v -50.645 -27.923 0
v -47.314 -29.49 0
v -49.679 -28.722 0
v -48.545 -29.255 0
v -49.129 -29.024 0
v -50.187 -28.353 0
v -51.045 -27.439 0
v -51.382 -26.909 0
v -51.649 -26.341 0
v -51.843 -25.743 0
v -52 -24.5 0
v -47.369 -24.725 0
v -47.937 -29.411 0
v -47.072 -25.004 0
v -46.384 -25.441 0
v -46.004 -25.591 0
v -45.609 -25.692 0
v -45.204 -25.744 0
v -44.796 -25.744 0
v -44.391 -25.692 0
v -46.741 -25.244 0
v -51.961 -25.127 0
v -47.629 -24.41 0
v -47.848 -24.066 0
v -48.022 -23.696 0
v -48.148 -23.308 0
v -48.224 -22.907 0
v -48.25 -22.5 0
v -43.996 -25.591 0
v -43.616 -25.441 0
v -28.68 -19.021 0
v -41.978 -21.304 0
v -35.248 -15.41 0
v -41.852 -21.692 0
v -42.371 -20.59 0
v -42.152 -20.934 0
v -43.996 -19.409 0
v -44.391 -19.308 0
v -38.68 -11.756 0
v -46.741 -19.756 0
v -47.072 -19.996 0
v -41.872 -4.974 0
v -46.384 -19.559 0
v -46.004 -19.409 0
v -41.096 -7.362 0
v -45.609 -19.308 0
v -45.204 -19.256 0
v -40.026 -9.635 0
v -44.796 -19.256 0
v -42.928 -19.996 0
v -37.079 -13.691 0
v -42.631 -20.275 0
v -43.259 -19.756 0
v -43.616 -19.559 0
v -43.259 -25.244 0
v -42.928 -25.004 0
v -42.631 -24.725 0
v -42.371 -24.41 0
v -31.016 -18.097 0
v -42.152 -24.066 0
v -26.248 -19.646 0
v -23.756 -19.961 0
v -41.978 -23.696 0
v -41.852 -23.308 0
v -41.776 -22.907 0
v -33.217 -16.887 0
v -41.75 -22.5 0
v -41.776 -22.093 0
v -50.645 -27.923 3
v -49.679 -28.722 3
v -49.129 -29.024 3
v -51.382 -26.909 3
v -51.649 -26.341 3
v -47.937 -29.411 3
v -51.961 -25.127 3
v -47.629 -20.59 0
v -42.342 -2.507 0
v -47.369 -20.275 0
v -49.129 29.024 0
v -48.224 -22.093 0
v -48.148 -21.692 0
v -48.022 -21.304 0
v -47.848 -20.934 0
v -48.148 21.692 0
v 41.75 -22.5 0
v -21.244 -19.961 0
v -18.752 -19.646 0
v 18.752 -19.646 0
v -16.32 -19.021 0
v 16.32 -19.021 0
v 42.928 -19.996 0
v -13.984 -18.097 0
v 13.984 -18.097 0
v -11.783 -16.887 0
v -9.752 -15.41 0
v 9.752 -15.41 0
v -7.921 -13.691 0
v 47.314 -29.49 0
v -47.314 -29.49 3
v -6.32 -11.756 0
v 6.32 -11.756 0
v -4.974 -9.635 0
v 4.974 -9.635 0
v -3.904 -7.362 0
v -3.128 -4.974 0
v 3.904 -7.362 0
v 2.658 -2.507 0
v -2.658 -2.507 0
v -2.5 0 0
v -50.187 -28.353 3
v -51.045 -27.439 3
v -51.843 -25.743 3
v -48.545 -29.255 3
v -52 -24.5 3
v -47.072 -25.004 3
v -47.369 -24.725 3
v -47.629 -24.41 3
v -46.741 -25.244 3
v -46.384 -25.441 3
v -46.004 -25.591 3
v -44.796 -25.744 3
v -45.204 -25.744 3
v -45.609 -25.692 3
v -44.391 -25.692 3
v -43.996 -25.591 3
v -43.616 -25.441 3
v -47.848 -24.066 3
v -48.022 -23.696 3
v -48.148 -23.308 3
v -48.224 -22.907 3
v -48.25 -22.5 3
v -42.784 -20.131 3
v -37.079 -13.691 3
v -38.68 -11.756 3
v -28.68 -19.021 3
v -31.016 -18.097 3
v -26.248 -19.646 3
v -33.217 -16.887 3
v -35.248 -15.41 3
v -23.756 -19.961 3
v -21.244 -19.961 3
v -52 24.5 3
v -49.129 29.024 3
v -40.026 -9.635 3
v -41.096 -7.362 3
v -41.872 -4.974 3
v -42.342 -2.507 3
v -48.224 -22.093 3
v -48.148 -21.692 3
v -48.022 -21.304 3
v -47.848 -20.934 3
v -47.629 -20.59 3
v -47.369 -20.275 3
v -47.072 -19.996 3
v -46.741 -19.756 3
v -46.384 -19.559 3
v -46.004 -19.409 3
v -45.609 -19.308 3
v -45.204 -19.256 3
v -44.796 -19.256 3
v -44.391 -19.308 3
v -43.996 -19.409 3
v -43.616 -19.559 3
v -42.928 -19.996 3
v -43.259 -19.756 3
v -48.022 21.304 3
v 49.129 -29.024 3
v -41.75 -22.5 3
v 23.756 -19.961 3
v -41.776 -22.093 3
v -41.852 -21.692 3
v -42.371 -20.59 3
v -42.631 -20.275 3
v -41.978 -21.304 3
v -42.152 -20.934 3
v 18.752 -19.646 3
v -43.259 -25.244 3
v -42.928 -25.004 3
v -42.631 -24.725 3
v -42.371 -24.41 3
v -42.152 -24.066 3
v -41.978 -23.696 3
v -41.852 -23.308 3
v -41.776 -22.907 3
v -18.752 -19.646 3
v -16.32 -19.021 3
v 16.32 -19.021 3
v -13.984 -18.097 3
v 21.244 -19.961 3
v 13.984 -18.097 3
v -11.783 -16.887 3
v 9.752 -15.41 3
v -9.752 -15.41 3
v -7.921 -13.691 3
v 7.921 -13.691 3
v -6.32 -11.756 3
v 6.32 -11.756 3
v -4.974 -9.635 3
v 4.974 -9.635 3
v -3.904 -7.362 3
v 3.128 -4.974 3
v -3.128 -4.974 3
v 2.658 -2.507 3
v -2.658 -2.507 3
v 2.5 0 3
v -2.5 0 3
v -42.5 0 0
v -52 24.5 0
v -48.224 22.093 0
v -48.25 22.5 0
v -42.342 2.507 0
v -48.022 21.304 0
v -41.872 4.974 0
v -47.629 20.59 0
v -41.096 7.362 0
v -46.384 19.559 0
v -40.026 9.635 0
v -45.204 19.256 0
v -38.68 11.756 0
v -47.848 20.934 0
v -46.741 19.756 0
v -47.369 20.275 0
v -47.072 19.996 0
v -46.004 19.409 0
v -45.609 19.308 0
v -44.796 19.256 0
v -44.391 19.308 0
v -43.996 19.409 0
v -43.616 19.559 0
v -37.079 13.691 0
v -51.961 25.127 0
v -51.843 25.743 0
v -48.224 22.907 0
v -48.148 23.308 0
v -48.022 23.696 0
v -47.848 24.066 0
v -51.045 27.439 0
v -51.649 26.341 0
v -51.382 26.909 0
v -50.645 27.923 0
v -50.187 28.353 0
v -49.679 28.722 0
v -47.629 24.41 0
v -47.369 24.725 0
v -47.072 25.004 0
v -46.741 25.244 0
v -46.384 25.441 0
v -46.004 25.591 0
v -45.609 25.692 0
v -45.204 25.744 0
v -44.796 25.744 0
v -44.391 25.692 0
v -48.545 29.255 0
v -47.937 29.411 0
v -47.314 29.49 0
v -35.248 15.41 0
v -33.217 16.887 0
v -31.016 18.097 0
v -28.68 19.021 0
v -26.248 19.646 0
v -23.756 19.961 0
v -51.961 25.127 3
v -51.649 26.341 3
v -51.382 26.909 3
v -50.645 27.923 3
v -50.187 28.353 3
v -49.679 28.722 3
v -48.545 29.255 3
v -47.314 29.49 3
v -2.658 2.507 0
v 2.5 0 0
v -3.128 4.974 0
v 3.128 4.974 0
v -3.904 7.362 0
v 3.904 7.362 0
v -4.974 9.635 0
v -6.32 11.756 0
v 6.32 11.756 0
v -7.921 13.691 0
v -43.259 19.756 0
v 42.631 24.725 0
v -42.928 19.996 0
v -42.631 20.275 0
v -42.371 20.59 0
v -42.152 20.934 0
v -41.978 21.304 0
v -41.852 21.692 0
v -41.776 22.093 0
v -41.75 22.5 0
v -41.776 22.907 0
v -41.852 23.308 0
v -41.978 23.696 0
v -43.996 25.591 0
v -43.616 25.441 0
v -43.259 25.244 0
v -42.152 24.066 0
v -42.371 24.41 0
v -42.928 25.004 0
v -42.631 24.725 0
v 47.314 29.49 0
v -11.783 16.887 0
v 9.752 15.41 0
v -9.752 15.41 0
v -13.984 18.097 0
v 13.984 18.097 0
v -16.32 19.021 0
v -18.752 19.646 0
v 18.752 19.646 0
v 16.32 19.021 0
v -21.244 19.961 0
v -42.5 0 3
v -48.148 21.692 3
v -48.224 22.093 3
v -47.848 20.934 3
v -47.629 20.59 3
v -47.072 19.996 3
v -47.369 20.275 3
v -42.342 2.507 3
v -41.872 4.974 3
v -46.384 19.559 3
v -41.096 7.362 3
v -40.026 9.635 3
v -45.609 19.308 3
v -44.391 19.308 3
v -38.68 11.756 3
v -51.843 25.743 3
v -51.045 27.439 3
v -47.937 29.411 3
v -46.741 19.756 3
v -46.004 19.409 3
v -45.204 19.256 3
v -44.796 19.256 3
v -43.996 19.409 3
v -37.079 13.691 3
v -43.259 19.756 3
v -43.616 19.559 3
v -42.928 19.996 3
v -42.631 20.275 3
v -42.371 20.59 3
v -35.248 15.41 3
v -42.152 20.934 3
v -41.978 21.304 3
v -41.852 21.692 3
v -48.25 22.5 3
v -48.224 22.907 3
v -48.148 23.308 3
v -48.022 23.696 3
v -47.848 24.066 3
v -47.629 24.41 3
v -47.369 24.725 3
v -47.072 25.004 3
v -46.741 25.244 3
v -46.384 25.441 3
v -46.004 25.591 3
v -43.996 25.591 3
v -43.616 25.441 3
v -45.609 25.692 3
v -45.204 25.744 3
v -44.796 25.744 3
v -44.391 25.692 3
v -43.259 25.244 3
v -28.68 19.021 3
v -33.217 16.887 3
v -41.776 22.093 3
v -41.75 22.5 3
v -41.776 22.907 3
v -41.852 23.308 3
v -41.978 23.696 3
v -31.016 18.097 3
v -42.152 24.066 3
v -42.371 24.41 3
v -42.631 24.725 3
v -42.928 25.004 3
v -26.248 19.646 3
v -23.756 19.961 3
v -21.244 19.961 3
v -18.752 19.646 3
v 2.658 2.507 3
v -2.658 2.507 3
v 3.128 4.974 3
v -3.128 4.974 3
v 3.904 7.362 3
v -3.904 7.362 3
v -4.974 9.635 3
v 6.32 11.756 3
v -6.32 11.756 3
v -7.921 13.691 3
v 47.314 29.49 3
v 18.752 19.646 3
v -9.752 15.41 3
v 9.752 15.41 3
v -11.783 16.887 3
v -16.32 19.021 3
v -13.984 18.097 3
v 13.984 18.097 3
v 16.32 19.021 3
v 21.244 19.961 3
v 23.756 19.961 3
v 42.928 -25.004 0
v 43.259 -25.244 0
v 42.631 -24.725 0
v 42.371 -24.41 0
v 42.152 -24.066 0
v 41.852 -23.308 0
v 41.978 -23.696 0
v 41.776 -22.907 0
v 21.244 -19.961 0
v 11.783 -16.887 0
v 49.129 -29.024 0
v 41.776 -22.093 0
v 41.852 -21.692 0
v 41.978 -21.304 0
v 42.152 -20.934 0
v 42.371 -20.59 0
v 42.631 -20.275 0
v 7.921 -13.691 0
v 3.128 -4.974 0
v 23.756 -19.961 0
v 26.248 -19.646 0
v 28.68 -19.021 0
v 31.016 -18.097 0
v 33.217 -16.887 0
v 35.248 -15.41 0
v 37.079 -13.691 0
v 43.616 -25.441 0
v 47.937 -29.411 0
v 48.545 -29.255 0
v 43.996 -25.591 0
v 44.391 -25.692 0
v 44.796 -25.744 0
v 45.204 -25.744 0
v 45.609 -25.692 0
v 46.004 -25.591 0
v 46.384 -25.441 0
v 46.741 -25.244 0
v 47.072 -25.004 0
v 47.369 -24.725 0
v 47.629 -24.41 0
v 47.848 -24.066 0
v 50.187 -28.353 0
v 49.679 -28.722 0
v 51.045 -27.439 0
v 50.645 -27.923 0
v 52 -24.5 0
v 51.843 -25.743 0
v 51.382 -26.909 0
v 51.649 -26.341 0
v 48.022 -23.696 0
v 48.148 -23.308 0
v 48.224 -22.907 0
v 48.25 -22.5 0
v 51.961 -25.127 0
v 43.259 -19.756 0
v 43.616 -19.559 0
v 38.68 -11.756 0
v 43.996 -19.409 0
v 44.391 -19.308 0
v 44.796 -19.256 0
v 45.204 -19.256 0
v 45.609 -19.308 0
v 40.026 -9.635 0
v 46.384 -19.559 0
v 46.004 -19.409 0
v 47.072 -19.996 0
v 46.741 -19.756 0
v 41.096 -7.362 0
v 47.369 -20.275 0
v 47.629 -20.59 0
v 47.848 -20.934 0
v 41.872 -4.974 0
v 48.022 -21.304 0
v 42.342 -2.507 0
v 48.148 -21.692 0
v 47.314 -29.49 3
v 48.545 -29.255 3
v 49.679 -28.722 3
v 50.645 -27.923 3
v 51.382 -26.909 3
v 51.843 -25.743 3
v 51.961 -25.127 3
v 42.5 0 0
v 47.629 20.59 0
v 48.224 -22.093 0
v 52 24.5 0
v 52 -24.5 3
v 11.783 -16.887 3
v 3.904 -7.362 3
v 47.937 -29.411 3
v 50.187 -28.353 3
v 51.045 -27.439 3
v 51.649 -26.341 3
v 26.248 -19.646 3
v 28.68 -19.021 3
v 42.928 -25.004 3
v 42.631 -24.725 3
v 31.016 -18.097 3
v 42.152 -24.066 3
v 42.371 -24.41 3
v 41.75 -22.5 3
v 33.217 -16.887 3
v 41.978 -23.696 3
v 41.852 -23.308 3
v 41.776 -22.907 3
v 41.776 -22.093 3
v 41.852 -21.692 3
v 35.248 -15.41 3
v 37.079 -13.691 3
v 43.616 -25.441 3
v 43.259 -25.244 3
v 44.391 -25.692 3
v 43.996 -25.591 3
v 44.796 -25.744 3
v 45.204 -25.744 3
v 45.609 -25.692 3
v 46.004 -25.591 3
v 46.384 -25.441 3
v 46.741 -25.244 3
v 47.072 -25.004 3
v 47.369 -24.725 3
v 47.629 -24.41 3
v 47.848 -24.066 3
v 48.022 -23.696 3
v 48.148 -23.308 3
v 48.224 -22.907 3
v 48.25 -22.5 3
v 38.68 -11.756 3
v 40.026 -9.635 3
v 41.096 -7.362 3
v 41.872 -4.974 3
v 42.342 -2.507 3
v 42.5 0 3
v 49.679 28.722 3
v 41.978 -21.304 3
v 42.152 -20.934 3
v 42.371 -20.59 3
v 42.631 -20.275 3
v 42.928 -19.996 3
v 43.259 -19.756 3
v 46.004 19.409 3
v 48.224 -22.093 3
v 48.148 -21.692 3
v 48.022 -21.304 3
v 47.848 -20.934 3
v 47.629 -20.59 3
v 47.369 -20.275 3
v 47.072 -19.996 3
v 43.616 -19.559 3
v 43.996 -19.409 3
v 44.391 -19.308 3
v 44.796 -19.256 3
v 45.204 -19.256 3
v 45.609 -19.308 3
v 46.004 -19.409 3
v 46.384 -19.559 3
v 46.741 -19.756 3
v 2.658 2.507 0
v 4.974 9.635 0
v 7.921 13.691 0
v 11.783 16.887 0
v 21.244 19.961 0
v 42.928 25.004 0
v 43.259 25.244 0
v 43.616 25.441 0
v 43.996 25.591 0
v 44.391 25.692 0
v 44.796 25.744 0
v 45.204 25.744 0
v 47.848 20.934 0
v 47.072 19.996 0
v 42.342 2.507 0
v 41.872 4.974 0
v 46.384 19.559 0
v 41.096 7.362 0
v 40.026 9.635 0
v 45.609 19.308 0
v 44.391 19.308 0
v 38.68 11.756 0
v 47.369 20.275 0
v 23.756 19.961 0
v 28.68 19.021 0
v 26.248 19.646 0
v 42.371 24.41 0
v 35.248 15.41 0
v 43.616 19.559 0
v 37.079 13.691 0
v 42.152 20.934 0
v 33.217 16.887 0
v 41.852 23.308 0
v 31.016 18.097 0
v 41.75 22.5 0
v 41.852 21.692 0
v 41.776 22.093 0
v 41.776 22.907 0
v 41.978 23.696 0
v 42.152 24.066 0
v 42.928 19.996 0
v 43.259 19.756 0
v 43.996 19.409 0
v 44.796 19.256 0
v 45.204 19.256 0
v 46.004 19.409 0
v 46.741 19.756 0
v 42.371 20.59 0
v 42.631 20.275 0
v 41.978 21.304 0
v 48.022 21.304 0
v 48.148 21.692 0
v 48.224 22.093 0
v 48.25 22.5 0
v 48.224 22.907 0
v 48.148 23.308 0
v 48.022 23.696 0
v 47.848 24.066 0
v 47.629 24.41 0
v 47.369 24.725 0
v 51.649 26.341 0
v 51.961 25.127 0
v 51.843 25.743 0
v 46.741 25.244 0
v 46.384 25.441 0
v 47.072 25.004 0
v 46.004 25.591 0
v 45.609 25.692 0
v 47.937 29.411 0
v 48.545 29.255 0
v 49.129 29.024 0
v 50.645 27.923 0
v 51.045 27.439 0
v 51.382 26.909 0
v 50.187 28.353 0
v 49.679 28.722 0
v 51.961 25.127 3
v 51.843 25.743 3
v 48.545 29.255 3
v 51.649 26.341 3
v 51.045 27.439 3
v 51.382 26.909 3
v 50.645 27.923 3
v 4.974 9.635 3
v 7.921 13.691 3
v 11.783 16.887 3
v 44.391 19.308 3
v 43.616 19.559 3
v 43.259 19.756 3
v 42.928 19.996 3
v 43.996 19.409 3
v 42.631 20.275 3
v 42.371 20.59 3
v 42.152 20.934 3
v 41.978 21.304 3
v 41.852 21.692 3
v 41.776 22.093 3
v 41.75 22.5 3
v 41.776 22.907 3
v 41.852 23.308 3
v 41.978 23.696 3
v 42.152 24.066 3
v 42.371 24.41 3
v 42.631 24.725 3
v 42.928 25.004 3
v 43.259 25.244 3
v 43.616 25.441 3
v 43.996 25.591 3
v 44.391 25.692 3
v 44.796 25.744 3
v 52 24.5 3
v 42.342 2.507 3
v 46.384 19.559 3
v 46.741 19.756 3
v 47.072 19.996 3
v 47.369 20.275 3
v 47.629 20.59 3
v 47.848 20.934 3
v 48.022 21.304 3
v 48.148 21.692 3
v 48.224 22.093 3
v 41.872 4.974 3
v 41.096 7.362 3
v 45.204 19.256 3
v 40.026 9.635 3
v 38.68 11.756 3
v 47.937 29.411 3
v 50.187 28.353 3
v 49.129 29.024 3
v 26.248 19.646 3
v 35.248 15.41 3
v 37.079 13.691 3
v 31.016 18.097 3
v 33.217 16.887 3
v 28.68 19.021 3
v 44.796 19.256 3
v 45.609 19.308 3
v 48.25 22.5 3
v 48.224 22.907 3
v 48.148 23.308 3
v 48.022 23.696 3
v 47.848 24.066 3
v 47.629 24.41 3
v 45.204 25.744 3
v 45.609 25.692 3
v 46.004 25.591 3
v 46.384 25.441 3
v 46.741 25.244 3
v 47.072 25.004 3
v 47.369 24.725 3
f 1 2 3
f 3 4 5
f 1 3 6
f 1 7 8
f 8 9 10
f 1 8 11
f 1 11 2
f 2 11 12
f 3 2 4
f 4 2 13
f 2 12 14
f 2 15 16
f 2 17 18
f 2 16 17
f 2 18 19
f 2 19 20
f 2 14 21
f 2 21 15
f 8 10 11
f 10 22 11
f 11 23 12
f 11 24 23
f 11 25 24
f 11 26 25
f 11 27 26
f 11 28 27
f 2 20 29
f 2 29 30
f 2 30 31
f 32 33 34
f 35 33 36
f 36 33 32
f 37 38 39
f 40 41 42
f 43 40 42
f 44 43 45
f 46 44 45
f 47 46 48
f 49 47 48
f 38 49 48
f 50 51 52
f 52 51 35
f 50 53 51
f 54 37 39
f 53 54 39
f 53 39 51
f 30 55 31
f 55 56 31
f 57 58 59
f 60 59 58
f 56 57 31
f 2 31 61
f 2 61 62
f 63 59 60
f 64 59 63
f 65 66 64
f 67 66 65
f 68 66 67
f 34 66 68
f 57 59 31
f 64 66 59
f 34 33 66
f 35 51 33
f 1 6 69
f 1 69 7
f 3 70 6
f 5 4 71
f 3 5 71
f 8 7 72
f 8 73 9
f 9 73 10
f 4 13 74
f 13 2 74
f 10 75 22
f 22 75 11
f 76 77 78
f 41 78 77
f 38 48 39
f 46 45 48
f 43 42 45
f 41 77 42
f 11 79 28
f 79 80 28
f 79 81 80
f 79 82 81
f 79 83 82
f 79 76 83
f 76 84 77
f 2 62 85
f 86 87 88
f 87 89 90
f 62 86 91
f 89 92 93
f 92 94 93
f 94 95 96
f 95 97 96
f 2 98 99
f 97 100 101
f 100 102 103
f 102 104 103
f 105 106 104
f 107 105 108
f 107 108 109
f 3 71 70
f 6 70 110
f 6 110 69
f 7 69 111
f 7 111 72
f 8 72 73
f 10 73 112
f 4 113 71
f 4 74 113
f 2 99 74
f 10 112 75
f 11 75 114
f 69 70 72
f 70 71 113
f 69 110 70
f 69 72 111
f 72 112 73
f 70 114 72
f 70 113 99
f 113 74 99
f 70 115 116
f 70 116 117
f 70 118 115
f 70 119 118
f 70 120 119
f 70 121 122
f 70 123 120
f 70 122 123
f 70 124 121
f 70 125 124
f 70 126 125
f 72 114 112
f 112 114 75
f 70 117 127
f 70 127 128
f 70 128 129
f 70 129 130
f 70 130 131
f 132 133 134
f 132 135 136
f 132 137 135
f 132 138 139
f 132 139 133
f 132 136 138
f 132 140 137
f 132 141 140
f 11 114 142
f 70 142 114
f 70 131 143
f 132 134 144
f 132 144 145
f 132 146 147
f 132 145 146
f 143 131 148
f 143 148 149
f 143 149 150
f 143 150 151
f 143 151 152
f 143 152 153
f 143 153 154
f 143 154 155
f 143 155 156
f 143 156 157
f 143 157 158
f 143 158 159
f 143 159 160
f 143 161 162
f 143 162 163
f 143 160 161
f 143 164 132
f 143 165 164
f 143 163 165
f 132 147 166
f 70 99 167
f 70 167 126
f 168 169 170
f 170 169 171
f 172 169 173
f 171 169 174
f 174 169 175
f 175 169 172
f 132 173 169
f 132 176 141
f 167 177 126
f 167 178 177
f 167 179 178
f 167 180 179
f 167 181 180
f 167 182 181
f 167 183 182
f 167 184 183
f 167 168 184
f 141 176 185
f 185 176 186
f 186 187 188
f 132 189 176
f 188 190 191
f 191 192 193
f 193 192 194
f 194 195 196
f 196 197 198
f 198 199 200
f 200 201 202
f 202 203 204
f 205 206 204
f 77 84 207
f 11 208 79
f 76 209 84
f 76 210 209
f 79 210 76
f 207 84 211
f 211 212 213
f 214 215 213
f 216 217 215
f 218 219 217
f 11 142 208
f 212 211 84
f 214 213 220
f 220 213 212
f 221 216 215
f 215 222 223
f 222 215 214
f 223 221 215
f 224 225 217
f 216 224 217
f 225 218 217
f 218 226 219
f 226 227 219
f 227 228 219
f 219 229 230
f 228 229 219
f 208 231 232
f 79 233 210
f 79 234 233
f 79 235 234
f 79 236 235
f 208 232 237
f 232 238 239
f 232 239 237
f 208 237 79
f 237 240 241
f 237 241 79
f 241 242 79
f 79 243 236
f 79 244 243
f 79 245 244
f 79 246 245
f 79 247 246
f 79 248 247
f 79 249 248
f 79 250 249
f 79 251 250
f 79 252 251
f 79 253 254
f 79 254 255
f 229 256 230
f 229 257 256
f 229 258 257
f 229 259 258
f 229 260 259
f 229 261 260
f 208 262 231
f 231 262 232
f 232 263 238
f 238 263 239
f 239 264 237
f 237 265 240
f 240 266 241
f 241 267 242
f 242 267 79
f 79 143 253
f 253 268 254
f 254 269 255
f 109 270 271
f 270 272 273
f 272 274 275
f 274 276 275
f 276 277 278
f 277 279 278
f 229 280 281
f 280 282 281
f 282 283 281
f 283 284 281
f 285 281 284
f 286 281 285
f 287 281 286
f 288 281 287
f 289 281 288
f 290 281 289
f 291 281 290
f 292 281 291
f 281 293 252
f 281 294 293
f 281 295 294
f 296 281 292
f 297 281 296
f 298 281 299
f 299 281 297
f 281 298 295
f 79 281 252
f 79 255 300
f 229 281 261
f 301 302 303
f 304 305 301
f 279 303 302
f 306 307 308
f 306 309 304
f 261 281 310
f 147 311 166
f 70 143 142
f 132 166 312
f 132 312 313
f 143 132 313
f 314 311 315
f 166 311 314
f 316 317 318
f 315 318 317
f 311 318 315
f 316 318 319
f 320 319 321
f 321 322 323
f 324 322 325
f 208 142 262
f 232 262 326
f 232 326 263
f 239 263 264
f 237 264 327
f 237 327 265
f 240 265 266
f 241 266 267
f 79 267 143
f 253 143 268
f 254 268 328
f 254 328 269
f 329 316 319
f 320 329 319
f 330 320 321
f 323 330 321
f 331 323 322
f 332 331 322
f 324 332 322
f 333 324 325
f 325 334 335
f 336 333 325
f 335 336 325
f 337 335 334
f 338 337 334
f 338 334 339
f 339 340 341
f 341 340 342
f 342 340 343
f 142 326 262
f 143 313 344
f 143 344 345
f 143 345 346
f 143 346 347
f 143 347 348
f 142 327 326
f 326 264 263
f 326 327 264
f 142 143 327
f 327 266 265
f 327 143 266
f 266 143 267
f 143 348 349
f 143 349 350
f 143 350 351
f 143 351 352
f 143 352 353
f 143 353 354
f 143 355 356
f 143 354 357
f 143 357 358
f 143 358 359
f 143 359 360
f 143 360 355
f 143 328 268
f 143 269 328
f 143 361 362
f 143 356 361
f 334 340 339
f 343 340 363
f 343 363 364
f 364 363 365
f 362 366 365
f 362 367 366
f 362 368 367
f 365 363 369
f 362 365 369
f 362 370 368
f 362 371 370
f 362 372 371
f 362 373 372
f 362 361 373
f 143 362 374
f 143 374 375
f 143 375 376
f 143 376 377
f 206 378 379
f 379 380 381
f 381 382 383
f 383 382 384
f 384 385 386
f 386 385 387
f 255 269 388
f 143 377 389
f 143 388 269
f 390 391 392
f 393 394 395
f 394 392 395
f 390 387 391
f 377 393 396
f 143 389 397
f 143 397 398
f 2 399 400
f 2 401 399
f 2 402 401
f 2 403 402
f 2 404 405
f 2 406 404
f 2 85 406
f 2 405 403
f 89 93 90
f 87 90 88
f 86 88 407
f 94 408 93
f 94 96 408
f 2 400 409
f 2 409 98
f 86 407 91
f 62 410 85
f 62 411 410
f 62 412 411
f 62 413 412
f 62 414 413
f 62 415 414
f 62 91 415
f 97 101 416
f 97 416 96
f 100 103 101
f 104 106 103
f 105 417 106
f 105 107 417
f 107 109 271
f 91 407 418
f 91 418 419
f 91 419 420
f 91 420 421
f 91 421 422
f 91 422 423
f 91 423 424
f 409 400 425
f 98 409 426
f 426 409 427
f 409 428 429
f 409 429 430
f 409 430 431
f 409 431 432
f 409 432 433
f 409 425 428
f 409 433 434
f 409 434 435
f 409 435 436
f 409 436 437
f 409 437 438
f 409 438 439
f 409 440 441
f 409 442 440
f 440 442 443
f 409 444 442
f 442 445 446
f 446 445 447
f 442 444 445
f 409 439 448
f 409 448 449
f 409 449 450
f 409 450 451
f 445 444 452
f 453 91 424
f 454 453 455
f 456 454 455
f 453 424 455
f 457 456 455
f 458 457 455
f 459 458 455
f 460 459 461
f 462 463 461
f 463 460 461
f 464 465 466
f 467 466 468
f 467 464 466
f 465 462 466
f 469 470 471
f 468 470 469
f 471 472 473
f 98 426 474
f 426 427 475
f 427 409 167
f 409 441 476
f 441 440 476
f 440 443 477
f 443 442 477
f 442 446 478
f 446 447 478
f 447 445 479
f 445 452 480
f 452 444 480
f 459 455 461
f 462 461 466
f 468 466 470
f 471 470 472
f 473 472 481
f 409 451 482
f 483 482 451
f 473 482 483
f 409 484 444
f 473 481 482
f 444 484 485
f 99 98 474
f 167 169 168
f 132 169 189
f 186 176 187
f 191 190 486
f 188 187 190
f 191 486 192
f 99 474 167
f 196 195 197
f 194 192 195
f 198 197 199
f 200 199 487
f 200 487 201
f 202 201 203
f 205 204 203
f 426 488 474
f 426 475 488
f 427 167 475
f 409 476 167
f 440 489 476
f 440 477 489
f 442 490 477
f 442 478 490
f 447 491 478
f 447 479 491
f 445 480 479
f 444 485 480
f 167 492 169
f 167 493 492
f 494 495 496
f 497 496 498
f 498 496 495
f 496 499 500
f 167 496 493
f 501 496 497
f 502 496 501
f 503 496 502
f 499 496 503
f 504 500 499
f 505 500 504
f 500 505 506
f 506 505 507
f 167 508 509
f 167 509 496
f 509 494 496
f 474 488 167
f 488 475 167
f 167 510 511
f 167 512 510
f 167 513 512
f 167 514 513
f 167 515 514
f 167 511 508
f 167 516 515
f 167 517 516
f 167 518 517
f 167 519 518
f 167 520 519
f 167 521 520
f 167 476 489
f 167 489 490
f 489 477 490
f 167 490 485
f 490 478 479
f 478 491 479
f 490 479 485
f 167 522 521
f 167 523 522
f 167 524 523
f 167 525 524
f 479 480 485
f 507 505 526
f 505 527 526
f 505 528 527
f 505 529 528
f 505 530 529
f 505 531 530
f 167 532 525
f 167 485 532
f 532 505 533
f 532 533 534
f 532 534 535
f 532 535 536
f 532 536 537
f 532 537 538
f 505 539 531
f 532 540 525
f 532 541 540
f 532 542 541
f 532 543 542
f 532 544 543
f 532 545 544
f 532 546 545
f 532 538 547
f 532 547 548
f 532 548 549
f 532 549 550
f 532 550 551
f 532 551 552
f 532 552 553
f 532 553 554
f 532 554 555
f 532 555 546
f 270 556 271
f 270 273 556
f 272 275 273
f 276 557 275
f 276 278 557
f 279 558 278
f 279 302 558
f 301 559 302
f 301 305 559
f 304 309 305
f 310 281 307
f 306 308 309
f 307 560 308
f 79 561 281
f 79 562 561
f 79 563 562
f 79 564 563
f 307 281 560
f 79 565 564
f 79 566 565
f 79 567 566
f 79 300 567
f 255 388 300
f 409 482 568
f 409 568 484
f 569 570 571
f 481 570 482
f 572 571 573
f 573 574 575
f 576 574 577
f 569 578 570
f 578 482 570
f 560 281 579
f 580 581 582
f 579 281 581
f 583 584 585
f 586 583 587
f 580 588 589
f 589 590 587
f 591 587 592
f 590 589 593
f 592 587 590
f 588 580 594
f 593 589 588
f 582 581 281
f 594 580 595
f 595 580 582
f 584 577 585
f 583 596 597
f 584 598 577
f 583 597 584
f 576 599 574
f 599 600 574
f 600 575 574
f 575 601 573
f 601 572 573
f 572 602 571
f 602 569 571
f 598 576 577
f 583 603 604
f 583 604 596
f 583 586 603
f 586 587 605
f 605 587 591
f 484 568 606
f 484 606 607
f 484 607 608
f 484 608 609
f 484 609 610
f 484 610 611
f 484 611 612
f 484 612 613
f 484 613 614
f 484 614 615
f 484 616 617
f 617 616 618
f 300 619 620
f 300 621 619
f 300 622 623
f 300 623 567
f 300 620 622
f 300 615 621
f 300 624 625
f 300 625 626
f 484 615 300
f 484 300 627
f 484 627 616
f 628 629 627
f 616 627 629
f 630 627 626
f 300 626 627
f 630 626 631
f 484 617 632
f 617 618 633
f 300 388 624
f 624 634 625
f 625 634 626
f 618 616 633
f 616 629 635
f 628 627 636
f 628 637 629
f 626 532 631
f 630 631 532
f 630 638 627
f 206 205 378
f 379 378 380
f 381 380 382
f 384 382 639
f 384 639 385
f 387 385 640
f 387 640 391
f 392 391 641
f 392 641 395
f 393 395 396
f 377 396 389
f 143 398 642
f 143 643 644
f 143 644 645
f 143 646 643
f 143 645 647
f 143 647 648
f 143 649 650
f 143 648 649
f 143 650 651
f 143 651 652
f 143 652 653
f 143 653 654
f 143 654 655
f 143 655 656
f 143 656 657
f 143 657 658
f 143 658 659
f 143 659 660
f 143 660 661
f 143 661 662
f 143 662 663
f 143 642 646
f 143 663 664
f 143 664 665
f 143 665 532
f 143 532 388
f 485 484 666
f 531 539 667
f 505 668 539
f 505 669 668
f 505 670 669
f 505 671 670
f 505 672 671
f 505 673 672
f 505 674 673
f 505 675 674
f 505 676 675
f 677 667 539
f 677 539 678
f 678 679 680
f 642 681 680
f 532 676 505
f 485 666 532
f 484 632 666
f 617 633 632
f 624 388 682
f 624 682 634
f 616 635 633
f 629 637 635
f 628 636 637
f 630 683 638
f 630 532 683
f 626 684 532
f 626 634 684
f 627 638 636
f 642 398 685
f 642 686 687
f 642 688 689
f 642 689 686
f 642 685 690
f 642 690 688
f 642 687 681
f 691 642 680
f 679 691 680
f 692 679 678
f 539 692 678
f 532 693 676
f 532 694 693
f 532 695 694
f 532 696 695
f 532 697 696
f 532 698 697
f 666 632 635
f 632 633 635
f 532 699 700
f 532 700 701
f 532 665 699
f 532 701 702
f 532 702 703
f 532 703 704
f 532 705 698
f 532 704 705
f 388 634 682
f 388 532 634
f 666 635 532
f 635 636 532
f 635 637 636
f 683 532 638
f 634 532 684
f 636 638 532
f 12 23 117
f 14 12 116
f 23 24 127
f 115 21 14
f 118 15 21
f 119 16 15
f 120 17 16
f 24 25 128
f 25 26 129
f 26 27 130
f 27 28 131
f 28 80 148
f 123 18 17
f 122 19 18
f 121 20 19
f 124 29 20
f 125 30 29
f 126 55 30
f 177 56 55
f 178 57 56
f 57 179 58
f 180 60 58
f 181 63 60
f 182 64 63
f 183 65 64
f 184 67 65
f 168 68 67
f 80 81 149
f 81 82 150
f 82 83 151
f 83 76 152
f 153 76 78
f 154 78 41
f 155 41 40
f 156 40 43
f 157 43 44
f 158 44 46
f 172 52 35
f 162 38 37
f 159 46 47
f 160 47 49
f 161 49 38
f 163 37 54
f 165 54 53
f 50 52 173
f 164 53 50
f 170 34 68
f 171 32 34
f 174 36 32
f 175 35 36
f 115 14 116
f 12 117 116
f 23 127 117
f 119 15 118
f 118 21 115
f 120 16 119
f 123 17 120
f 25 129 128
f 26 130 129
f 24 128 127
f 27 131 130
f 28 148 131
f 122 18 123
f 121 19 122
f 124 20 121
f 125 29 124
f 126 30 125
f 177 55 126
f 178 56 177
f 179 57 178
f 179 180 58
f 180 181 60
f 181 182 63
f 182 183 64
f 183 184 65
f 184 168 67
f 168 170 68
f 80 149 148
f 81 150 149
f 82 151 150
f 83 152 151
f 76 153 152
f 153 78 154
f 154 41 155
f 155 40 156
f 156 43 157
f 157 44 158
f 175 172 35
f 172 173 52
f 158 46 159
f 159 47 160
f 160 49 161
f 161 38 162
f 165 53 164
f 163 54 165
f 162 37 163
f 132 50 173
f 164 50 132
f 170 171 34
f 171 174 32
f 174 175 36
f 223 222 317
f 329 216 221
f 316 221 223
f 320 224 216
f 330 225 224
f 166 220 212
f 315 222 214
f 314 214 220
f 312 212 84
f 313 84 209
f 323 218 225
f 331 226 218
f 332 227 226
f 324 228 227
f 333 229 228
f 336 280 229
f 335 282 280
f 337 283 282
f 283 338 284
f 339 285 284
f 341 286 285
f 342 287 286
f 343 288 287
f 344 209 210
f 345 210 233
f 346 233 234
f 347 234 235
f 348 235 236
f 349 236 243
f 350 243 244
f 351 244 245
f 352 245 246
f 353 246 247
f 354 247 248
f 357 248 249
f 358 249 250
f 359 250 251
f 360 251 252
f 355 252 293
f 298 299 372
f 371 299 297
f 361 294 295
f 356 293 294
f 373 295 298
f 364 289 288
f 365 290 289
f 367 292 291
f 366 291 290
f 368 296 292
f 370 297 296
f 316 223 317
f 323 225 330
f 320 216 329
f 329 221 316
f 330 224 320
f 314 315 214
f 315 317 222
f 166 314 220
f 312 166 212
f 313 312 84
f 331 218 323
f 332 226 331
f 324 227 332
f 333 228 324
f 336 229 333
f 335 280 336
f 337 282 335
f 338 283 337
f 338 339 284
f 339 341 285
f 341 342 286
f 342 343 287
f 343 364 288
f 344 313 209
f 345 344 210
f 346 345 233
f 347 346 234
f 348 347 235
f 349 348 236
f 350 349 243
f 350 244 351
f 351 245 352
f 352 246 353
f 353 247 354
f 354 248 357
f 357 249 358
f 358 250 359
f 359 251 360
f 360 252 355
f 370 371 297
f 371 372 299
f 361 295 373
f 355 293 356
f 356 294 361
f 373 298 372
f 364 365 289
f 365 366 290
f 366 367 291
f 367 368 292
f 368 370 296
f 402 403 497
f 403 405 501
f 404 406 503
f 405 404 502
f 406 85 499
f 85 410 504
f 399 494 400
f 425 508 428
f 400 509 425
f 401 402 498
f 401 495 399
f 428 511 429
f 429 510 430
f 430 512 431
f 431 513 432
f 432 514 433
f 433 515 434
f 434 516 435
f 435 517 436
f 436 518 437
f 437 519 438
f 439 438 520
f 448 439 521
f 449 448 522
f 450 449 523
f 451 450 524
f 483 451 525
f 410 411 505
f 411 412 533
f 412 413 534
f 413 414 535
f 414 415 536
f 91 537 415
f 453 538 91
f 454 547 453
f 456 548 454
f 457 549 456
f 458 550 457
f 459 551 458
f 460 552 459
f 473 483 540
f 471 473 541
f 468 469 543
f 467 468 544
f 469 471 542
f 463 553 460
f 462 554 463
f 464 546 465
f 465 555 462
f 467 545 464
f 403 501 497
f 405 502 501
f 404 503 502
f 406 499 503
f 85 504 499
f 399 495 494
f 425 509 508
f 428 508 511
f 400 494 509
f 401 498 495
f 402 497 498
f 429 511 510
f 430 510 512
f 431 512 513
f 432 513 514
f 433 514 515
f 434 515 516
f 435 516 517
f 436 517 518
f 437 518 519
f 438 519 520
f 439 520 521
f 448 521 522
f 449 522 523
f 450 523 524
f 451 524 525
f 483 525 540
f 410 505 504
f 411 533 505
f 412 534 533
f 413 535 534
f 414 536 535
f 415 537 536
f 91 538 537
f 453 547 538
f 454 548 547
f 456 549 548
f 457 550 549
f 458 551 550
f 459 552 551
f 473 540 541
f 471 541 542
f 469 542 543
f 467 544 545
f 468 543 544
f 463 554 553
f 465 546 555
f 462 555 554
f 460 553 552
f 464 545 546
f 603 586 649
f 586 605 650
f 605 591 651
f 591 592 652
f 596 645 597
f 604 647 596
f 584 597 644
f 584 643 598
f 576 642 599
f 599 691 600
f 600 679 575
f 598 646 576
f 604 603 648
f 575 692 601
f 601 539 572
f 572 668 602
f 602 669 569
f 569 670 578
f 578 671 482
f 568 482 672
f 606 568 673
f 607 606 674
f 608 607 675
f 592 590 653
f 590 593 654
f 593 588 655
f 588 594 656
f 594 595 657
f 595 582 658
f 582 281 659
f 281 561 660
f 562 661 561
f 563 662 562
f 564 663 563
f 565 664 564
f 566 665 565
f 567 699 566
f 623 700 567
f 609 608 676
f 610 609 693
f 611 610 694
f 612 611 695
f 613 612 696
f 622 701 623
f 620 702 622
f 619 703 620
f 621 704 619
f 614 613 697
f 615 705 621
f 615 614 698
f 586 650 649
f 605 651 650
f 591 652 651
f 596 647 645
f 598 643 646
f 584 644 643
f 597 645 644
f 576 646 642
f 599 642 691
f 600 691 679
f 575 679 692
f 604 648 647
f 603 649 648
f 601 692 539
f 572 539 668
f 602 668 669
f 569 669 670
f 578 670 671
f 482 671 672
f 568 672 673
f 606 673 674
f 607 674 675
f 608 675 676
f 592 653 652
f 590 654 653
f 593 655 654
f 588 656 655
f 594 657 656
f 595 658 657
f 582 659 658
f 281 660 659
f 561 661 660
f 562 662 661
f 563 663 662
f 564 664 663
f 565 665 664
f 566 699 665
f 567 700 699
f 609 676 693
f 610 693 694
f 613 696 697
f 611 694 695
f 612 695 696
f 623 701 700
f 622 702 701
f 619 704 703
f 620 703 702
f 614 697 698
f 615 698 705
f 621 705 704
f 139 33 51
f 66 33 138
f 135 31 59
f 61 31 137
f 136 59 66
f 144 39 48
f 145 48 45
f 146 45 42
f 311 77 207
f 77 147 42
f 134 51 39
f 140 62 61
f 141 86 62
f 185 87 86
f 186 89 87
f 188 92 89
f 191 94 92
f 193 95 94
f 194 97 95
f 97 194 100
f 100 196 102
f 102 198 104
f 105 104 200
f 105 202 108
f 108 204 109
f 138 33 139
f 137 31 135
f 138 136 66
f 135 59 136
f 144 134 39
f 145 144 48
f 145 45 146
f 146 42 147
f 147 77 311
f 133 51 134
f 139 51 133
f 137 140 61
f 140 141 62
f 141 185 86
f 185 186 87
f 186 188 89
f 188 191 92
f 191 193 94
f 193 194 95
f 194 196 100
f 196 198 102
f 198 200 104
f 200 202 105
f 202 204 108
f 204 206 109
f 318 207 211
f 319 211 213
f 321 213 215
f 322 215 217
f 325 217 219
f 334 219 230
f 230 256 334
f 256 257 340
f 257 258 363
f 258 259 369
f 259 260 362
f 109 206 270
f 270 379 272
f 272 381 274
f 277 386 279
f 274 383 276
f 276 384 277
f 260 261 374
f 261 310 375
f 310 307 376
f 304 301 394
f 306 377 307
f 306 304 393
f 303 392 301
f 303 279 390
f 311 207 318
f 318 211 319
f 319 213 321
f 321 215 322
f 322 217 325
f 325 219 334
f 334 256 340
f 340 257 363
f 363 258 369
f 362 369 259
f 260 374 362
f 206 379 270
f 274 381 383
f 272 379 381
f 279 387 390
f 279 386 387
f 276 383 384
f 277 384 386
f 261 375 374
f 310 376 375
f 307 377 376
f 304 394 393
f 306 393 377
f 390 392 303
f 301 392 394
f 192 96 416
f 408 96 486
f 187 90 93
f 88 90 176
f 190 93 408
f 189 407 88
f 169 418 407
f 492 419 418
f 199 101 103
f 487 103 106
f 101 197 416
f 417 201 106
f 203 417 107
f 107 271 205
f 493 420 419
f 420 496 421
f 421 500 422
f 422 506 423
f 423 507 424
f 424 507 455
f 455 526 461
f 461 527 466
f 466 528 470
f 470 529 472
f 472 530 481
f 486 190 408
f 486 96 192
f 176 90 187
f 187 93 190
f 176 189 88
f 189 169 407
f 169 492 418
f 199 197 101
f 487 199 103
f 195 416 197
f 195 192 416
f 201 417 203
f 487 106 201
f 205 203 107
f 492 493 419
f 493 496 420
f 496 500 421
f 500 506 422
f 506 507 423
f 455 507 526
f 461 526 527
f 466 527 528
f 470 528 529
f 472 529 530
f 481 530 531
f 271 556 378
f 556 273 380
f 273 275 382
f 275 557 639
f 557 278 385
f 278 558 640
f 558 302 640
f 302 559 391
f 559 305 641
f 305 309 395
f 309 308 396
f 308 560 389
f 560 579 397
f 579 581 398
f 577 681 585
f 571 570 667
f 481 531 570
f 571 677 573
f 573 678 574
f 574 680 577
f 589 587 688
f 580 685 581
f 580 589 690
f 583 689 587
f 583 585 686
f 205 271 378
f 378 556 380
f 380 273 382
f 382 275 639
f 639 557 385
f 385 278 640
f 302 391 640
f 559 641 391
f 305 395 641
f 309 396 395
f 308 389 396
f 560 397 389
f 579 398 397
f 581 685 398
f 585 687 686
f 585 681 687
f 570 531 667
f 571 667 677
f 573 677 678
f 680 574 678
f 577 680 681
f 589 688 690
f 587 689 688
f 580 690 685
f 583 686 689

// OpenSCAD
$fn = 50;

difference() {
	union() {
		hull() {
			translate(v = [-47.0, 24.5, 0]) {
				cylinder(h = 3, r = 5);
			}
			translate(v = [47.0, 24.5, 0]) {
				cylinder(h = 3, r = 5);
			}
			translate(v = [-47.0, -24.5, 0]) {
				cylinder(h = 3, r = 5);
			}
			translate(v = [47.0, -24.5, 0]) {
				cylinder(h = 3, r = 5);
			}
		}
	}
	union() {
		translate(v = [-45.0, -22.5, -100.0]) {
			cylinder(h = 200, r = 3.25);
		}
		translate(v = [-45.0, 22.5, -100.0]) {
			cylinder(h = 200, r = 3.25);
		}
		translate(v = [45.0, -22.5, -100.0]) {
			cylinder(h = 200, r = 3.25);
		}
		translate(v = [45.0, 22.5, -100.0]) {
			cylinder(h = 200, r = 3.25);
		}
		translate(v = [-45.0, -22.5, -100.0]) {
			cylinder(h = 200, r = 1.8);
		}
		translate(v = [-45.0, 22.5, -100.0]) {
			cylinder(h = 200, r = 1.8);
		}
		translate(v = [45.0, -22.5, -100.0]) {
			cylinder(h = 200, r = 1.8);
		}
		translate(v = [45.0, 22.5, -100.0]) {
			cylinder(h = 200, r = 1.8);
		}
		translate(v = [-22.5, 0, 0.0]) {
			cylinder(h = 3, r = 20.0);
		}
		translate(v = [22.5, 0, 0.0]) {
			cylinder(h = 3, r = 20.0);
		}
	}
}
